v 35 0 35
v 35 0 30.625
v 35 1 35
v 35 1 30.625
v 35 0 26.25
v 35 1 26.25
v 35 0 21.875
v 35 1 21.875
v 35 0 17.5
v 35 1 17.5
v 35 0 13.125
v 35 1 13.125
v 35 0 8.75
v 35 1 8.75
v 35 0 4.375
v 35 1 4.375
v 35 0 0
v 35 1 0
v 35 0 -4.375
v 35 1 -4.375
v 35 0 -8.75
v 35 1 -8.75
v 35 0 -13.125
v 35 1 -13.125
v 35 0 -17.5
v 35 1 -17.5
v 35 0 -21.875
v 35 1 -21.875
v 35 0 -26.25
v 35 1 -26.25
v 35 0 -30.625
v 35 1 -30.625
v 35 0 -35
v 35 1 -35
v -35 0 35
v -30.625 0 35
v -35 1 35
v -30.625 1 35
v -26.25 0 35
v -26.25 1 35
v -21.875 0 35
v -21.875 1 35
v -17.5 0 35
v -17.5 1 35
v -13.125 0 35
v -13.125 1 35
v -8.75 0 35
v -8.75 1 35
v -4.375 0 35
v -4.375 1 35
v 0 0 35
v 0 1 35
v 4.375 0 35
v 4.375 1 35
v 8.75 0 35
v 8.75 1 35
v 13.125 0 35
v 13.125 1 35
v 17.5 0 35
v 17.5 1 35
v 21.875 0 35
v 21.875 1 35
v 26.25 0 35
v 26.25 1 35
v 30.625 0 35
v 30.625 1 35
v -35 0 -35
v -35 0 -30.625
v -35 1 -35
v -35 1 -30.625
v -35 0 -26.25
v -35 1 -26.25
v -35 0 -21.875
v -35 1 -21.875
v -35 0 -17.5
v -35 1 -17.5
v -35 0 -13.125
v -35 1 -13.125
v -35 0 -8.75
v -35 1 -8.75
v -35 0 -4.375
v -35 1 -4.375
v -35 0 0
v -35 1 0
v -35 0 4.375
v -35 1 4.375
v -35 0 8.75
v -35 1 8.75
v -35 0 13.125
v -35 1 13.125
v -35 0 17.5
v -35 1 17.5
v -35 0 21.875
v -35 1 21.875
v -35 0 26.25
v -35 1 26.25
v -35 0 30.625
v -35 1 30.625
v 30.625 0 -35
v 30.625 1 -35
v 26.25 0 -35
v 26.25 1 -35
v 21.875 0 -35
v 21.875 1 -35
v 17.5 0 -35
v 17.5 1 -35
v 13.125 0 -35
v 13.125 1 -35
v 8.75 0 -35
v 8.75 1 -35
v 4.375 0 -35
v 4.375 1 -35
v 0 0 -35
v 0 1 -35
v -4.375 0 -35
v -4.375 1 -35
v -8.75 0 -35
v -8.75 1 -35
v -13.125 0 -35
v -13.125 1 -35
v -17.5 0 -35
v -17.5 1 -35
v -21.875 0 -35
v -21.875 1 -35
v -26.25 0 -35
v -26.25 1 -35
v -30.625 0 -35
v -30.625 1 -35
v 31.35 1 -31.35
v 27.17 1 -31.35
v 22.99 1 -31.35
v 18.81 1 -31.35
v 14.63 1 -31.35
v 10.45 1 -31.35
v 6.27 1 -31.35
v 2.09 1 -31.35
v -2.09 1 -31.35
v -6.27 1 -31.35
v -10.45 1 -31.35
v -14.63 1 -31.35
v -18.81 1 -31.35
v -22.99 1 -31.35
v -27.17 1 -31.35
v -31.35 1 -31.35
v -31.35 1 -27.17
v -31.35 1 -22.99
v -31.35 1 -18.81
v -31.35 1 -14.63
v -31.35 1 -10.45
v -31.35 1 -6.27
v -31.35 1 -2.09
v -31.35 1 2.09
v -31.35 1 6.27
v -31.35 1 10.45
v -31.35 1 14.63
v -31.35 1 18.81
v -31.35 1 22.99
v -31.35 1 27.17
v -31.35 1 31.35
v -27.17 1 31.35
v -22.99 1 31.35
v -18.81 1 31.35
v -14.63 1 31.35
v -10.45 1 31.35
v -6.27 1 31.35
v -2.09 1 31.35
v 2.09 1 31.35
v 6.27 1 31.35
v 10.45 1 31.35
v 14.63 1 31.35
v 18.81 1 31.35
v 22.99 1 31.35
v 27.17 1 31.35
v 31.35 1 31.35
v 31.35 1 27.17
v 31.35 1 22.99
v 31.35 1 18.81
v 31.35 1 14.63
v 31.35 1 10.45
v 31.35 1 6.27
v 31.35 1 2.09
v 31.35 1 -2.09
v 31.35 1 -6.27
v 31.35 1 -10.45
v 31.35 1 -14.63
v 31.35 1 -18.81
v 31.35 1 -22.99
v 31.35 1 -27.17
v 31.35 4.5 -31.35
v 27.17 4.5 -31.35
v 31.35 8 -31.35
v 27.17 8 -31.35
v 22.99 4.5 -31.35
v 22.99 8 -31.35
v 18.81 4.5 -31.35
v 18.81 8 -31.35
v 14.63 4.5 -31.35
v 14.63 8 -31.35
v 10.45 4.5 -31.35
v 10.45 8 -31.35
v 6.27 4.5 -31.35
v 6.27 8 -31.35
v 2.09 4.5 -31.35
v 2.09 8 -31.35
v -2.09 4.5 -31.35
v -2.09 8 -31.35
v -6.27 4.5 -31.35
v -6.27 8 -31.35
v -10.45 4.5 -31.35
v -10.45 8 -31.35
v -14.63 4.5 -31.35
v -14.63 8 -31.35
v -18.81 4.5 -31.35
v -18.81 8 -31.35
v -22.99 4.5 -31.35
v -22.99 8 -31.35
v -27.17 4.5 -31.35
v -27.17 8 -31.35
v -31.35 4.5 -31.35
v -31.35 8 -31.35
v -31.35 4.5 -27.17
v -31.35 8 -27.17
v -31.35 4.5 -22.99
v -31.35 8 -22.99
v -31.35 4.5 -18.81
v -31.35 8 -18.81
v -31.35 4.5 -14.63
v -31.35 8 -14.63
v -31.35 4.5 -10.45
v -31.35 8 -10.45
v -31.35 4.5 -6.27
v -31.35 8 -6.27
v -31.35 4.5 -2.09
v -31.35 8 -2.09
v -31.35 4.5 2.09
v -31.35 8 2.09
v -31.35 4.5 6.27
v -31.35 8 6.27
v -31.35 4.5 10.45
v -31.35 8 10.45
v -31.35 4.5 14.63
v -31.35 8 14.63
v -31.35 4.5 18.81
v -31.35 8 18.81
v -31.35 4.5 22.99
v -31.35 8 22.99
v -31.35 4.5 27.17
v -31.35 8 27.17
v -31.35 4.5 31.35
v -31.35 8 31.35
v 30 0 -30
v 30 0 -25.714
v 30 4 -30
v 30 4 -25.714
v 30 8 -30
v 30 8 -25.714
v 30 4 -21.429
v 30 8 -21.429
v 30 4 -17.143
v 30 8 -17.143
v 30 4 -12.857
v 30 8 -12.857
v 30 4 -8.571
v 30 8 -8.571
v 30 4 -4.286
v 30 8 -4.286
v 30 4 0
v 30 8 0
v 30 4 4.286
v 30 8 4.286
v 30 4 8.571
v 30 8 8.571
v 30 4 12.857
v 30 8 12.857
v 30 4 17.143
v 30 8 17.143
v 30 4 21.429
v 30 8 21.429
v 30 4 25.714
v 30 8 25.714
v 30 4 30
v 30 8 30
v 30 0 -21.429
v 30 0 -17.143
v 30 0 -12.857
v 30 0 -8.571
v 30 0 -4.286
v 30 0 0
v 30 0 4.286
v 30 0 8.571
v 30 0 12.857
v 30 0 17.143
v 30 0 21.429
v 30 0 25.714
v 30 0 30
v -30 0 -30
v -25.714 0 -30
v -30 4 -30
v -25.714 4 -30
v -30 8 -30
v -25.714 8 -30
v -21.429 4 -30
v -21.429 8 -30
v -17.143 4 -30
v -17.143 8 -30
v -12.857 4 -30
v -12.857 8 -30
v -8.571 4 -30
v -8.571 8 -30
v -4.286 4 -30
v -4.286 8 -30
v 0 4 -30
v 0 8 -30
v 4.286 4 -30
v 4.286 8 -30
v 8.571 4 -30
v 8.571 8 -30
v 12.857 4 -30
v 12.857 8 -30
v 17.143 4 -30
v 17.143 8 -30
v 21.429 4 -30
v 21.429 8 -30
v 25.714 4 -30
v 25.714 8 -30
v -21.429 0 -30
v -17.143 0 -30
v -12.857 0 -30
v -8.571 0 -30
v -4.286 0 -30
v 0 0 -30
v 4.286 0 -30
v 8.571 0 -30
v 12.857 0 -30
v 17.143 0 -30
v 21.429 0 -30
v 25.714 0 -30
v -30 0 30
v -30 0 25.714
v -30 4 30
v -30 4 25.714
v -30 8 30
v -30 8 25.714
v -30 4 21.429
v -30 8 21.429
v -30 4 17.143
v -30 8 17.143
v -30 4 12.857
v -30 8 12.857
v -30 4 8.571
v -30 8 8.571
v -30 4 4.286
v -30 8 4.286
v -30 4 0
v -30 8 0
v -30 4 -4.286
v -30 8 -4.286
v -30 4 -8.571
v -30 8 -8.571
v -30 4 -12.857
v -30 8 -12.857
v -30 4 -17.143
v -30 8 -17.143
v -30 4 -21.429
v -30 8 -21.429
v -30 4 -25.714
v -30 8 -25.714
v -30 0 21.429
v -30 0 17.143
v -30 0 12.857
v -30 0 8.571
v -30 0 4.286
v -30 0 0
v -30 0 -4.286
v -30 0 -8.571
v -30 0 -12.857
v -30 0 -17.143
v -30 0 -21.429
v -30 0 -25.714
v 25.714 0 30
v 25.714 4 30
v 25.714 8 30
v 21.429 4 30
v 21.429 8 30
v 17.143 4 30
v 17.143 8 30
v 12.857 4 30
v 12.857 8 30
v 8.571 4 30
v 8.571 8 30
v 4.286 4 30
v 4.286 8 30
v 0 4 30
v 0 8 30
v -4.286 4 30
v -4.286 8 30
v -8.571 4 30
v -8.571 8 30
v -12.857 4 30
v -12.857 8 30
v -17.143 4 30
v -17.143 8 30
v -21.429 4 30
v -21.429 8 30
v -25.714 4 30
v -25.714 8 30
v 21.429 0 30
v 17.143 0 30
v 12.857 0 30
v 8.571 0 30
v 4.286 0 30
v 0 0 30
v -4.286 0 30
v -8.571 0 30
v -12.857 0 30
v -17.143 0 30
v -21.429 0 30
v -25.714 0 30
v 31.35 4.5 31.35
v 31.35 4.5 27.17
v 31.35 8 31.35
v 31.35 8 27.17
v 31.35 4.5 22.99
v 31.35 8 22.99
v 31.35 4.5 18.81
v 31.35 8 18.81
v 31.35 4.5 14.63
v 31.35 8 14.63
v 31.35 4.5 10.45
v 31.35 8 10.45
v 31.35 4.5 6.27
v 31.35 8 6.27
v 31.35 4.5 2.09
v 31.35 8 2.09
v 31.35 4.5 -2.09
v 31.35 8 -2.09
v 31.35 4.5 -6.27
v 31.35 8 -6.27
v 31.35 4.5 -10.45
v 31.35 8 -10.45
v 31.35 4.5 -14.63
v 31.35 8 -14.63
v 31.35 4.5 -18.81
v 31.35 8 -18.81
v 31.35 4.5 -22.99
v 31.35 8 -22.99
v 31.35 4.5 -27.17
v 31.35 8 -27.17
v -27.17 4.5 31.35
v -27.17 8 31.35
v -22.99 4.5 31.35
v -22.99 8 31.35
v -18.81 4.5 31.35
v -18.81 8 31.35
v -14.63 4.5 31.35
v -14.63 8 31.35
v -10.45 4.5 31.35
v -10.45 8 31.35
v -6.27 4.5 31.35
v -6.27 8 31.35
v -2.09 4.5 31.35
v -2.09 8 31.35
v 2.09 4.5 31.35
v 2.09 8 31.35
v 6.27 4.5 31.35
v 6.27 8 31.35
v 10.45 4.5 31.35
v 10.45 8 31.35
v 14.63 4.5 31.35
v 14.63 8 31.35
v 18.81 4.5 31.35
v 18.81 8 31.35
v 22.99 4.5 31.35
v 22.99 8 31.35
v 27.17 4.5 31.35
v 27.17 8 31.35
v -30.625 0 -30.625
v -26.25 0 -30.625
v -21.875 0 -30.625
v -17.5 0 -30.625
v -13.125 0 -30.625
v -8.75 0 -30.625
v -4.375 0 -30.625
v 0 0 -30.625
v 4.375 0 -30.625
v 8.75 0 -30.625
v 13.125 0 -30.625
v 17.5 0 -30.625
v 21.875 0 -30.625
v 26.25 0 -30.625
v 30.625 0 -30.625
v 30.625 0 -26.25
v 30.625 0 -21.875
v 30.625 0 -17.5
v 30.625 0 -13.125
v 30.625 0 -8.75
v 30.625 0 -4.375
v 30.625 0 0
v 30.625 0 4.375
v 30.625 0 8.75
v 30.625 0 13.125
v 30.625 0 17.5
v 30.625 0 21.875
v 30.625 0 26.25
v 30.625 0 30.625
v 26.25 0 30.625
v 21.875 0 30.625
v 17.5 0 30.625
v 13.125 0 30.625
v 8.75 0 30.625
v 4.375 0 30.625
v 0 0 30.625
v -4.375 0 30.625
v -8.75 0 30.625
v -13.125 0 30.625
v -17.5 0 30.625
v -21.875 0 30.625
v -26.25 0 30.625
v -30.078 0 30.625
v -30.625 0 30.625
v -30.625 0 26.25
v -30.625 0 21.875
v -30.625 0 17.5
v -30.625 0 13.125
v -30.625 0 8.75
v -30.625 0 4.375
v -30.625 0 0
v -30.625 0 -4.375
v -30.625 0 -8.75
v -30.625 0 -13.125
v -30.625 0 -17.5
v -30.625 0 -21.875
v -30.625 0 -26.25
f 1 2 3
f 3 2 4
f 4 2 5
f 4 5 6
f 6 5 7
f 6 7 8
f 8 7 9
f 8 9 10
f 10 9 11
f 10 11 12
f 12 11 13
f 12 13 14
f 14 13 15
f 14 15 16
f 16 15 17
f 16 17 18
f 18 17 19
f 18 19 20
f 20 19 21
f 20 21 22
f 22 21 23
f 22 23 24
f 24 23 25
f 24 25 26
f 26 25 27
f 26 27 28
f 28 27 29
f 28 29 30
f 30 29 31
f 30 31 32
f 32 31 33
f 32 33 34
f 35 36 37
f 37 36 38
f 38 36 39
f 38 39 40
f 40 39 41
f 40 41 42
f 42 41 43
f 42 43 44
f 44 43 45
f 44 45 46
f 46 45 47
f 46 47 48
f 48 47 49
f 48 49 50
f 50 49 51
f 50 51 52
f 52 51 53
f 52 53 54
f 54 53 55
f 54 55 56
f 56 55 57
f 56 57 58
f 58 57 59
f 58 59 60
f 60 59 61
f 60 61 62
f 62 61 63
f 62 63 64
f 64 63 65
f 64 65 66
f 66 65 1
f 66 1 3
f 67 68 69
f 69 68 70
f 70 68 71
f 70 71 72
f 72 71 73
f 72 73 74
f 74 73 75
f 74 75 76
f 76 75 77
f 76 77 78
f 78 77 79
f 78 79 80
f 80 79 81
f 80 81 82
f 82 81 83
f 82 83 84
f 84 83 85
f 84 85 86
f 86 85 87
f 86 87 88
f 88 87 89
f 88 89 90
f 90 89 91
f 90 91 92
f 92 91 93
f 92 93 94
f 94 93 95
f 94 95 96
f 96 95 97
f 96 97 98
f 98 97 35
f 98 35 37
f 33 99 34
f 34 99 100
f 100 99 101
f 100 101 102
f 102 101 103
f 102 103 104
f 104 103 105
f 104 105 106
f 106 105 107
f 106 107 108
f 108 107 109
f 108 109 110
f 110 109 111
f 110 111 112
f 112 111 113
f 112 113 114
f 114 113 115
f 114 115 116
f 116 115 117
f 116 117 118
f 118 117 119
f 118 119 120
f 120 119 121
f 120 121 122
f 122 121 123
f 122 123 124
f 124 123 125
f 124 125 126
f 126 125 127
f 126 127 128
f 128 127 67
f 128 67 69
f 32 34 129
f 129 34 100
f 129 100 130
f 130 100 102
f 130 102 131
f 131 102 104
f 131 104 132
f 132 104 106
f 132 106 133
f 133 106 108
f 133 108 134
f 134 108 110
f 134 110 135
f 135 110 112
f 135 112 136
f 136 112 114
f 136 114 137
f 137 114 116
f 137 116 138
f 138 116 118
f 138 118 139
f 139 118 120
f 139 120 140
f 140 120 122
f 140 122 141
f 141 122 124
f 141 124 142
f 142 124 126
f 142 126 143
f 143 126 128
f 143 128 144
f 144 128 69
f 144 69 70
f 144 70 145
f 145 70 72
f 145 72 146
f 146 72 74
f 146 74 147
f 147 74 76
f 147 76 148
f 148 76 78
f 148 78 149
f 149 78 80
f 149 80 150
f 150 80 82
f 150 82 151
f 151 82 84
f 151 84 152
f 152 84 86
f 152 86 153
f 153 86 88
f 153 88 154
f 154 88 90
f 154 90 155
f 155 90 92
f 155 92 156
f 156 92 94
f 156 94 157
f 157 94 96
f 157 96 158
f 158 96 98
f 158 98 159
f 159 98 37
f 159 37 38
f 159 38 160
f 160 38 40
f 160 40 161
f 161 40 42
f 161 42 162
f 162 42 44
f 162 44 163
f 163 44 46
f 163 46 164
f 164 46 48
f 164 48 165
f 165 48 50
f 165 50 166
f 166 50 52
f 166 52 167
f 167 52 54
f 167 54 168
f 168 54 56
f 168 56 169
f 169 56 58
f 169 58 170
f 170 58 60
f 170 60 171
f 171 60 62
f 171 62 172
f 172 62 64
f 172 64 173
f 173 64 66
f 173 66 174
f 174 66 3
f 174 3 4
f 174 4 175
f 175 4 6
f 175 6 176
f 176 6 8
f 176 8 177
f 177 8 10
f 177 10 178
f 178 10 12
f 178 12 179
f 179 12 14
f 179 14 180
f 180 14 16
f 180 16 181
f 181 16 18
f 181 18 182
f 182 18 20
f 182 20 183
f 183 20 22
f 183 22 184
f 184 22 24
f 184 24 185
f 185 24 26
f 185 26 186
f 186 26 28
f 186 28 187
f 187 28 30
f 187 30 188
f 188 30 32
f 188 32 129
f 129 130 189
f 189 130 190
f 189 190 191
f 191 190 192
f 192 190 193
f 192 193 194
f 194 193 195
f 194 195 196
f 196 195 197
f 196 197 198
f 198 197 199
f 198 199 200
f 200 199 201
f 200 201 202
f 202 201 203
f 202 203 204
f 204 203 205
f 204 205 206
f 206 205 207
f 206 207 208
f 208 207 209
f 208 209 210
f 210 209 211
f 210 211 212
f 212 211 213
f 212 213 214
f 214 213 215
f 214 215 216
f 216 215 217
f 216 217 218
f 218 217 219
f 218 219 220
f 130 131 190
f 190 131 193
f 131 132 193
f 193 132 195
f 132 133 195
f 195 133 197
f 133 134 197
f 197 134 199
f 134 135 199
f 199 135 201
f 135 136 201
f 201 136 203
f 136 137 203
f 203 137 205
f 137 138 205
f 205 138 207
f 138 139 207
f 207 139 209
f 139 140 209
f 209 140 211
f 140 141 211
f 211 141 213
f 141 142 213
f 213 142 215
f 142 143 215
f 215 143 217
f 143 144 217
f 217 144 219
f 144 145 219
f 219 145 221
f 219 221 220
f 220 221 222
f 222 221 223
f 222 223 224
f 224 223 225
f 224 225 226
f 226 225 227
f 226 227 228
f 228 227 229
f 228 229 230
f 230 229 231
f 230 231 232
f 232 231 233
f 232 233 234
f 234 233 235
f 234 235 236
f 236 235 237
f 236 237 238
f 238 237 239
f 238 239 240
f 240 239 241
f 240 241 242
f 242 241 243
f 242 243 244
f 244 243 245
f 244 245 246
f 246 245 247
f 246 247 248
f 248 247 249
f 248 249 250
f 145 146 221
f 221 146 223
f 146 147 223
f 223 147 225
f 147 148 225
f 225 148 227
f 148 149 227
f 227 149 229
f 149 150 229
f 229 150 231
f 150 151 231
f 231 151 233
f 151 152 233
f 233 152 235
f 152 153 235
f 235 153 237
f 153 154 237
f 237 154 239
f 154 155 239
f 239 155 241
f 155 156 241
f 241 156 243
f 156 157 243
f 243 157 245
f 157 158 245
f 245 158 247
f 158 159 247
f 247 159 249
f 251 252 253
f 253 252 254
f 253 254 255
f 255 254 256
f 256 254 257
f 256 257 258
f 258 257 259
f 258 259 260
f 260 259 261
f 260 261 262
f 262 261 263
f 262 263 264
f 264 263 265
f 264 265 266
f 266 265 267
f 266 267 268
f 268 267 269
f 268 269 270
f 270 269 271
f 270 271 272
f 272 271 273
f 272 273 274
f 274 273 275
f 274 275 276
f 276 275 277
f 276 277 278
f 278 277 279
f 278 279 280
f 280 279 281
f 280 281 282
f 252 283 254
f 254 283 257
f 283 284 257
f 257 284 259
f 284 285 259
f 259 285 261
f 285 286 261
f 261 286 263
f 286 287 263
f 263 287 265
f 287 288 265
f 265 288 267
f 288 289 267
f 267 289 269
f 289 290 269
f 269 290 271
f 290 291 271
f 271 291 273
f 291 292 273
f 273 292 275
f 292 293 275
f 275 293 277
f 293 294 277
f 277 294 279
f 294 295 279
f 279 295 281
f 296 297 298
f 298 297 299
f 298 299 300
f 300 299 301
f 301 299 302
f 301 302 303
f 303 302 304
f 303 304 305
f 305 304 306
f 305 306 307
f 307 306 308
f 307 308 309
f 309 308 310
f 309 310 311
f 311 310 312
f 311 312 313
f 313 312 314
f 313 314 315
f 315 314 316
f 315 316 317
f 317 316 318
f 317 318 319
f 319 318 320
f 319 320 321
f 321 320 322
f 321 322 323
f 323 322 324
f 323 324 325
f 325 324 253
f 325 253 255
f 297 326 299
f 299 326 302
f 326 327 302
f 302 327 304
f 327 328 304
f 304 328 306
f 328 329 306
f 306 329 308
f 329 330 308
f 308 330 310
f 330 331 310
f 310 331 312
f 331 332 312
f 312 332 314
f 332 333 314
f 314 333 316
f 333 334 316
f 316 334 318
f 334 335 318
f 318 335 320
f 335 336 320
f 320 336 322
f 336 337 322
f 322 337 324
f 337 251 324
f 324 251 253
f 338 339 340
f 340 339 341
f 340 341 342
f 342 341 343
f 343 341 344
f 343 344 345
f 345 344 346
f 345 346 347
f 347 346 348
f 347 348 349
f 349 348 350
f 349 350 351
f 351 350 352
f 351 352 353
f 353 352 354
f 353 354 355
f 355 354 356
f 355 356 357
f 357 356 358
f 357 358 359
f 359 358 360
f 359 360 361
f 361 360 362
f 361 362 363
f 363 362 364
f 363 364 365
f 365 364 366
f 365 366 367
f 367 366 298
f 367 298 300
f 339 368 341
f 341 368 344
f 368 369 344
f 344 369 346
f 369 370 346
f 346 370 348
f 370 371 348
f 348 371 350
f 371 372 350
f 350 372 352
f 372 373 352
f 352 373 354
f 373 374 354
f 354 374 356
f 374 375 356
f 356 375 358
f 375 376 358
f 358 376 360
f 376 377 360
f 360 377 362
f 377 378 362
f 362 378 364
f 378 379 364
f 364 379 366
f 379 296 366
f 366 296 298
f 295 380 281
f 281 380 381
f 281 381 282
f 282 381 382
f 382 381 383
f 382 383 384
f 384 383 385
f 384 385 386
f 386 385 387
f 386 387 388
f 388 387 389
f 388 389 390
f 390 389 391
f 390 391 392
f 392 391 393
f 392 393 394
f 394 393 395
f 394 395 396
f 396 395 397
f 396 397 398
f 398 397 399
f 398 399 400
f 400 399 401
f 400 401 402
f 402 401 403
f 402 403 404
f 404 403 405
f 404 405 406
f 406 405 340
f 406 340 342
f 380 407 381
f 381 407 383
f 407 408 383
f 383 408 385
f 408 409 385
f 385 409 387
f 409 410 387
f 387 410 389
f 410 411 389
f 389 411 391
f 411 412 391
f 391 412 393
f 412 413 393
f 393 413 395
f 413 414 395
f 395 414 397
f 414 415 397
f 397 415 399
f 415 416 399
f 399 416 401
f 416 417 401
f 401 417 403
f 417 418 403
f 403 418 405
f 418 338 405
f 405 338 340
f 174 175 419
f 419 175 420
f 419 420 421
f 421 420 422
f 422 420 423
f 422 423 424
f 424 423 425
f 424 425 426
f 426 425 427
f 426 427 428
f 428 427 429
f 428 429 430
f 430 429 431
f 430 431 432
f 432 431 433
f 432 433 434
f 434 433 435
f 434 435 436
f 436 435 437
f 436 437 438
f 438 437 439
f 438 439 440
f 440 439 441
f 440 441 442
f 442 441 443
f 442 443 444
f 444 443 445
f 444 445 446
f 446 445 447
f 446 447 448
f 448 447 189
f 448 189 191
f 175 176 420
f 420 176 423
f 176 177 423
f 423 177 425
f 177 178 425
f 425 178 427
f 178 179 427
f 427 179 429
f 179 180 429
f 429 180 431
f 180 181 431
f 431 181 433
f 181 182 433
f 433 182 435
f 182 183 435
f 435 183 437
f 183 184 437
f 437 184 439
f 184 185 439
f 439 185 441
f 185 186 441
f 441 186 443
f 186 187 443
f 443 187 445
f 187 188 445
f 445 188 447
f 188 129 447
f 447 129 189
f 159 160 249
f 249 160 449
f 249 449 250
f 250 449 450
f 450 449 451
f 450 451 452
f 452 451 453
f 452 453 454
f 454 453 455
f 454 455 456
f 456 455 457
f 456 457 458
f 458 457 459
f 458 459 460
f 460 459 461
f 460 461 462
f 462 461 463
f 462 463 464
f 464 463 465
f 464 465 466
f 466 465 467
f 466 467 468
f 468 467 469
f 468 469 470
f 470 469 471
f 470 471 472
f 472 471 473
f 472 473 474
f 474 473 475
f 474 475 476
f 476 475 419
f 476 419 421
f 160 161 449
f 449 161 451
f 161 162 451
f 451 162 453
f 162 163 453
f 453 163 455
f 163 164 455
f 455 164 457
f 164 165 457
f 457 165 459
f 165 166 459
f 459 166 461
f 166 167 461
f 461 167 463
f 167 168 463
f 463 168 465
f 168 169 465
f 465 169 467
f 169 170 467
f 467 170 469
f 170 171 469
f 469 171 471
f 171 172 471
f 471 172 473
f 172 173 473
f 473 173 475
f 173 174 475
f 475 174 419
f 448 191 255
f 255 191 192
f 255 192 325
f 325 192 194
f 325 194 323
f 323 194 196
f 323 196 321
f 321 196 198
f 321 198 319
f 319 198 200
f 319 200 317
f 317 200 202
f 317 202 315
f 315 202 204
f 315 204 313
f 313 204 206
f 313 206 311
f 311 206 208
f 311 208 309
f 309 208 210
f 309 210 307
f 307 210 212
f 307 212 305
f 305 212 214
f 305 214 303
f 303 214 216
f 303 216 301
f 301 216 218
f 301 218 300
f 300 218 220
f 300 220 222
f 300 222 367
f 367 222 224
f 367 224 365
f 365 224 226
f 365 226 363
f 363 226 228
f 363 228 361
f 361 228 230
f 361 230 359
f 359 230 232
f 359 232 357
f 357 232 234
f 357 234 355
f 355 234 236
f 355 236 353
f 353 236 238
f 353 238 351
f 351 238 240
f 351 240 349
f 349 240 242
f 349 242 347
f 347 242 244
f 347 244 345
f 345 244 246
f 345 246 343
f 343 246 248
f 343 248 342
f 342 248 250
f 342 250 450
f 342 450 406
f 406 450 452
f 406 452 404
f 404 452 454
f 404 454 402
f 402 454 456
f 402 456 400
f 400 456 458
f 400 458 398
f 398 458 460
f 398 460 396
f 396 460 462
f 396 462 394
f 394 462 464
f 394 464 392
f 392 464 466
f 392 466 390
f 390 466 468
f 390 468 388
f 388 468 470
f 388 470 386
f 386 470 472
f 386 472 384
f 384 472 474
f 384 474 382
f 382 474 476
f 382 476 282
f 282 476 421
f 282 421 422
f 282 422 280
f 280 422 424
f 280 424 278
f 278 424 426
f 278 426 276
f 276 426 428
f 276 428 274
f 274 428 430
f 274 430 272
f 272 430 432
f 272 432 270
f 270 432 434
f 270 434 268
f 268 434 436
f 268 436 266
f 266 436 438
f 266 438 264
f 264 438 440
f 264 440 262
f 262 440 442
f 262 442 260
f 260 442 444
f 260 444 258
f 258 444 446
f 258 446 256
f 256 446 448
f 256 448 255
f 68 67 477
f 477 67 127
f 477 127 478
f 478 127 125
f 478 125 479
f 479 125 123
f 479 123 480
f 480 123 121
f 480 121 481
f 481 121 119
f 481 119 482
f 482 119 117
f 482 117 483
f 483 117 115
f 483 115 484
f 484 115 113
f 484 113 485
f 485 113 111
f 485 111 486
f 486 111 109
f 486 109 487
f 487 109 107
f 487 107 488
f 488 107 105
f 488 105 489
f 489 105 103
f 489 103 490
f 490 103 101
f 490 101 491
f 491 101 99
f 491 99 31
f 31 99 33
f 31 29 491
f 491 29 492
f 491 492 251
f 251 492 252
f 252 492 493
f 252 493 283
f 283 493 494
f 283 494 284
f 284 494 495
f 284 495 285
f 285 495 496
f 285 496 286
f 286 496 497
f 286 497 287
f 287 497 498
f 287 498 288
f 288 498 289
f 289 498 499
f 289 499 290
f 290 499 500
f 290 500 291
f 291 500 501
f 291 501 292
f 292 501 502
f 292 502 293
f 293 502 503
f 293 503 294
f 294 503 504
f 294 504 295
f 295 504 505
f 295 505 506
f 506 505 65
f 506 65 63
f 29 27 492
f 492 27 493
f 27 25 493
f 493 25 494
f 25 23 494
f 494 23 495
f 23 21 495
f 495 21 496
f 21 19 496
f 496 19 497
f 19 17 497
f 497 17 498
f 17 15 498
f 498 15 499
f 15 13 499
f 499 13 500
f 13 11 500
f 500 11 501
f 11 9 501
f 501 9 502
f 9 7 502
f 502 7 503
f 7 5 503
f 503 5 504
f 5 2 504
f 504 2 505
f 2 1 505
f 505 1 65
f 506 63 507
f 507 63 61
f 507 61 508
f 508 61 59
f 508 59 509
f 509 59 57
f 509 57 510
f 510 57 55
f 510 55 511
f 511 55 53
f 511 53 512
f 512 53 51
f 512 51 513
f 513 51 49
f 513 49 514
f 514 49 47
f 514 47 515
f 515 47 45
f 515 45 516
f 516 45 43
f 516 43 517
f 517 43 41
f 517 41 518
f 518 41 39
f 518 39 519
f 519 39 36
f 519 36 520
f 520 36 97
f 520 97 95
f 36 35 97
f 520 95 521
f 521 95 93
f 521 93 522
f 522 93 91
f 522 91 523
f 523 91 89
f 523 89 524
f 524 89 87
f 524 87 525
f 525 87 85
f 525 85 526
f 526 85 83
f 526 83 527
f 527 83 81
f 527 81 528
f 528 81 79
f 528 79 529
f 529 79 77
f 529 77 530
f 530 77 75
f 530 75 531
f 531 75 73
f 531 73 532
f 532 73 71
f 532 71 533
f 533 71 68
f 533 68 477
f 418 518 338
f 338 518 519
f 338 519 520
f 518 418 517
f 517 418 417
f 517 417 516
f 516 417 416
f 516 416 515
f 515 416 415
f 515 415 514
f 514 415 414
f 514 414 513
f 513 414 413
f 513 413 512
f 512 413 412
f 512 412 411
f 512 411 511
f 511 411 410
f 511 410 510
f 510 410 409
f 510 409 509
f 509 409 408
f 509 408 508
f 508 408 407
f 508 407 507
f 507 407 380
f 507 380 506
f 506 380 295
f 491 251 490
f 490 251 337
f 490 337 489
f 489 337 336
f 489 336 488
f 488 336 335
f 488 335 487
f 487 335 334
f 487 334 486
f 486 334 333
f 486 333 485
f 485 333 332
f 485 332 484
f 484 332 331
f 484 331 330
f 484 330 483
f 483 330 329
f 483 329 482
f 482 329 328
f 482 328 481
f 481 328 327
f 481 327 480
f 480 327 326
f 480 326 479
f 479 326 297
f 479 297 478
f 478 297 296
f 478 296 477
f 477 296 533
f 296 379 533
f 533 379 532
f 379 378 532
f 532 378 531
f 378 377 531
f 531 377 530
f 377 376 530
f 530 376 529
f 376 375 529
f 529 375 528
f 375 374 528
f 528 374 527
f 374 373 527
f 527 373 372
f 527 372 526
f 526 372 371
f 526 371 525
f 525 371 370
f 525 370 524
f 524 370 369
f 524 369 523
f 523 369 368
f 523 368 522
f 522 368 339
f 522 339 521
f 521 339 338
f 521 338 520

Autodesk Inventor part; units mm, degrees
ref_plane "YZ Plane" through (0, 0, 0) normal (1, 0, 0) x (0, 1, 0)
ref_plane "XZ Plane" through (0, 0, 0) normal (0, 1, 0) x (-1, 0, 0)
ref_plane "XY Plane" through (0, 0, 0) normal (0, 0, 1) x (1, 0, 0)
sketch "Sketch1" plane through (0, 0, 0) normal (0, 1, 0) x (-1, 0, 0)
  line L0 (-30, 30) -> (30, 30)
  line L1 (30, 30) -> (30, -30)
  line L2 (30, -30) -> (-30, -30)
  line L3 (-30, -30) -> (-30, 30)
  line L4 (-31.35, 31.35) -> (31.35, 31.35)
  line L5 (31.35, 31.35) -> (31.35, -31.35)
  line L6 (31.35, -31.35) -> (-31.35, -31.35)
  line L7 (-31.35, -31.35) -> (-31.35, 31.35)
  line L8 (-35, 35) -> (35, 35)
  line L9 (35, 35) -> (35, -35)
  line L10 (35, -35) -> (-35, -35)
  line L11 (-35, -35) -> (-35, 35)
  point P0 (0, 0)
  point P1 (0, -30)
  point P2 (0, -31.35)
  point P3 (0, -35)
  point P4 (30, 0)
  point P5 (31.35, 0)
  point P6 (35, 0)
  dimension "d0" = 60
  dimension "d1" = 62.7
  dimension "d2" = 70
extrude "Extrusion1" add sketch "Sketch1" along normal blind 8 contours L4 L5 L6 L7
extrude "Extrusion2" add sketch "Sketch1" along normal blind 1 contours L8 L9 L10 L11
properties part number "VRSPAD-144 illumination base"
